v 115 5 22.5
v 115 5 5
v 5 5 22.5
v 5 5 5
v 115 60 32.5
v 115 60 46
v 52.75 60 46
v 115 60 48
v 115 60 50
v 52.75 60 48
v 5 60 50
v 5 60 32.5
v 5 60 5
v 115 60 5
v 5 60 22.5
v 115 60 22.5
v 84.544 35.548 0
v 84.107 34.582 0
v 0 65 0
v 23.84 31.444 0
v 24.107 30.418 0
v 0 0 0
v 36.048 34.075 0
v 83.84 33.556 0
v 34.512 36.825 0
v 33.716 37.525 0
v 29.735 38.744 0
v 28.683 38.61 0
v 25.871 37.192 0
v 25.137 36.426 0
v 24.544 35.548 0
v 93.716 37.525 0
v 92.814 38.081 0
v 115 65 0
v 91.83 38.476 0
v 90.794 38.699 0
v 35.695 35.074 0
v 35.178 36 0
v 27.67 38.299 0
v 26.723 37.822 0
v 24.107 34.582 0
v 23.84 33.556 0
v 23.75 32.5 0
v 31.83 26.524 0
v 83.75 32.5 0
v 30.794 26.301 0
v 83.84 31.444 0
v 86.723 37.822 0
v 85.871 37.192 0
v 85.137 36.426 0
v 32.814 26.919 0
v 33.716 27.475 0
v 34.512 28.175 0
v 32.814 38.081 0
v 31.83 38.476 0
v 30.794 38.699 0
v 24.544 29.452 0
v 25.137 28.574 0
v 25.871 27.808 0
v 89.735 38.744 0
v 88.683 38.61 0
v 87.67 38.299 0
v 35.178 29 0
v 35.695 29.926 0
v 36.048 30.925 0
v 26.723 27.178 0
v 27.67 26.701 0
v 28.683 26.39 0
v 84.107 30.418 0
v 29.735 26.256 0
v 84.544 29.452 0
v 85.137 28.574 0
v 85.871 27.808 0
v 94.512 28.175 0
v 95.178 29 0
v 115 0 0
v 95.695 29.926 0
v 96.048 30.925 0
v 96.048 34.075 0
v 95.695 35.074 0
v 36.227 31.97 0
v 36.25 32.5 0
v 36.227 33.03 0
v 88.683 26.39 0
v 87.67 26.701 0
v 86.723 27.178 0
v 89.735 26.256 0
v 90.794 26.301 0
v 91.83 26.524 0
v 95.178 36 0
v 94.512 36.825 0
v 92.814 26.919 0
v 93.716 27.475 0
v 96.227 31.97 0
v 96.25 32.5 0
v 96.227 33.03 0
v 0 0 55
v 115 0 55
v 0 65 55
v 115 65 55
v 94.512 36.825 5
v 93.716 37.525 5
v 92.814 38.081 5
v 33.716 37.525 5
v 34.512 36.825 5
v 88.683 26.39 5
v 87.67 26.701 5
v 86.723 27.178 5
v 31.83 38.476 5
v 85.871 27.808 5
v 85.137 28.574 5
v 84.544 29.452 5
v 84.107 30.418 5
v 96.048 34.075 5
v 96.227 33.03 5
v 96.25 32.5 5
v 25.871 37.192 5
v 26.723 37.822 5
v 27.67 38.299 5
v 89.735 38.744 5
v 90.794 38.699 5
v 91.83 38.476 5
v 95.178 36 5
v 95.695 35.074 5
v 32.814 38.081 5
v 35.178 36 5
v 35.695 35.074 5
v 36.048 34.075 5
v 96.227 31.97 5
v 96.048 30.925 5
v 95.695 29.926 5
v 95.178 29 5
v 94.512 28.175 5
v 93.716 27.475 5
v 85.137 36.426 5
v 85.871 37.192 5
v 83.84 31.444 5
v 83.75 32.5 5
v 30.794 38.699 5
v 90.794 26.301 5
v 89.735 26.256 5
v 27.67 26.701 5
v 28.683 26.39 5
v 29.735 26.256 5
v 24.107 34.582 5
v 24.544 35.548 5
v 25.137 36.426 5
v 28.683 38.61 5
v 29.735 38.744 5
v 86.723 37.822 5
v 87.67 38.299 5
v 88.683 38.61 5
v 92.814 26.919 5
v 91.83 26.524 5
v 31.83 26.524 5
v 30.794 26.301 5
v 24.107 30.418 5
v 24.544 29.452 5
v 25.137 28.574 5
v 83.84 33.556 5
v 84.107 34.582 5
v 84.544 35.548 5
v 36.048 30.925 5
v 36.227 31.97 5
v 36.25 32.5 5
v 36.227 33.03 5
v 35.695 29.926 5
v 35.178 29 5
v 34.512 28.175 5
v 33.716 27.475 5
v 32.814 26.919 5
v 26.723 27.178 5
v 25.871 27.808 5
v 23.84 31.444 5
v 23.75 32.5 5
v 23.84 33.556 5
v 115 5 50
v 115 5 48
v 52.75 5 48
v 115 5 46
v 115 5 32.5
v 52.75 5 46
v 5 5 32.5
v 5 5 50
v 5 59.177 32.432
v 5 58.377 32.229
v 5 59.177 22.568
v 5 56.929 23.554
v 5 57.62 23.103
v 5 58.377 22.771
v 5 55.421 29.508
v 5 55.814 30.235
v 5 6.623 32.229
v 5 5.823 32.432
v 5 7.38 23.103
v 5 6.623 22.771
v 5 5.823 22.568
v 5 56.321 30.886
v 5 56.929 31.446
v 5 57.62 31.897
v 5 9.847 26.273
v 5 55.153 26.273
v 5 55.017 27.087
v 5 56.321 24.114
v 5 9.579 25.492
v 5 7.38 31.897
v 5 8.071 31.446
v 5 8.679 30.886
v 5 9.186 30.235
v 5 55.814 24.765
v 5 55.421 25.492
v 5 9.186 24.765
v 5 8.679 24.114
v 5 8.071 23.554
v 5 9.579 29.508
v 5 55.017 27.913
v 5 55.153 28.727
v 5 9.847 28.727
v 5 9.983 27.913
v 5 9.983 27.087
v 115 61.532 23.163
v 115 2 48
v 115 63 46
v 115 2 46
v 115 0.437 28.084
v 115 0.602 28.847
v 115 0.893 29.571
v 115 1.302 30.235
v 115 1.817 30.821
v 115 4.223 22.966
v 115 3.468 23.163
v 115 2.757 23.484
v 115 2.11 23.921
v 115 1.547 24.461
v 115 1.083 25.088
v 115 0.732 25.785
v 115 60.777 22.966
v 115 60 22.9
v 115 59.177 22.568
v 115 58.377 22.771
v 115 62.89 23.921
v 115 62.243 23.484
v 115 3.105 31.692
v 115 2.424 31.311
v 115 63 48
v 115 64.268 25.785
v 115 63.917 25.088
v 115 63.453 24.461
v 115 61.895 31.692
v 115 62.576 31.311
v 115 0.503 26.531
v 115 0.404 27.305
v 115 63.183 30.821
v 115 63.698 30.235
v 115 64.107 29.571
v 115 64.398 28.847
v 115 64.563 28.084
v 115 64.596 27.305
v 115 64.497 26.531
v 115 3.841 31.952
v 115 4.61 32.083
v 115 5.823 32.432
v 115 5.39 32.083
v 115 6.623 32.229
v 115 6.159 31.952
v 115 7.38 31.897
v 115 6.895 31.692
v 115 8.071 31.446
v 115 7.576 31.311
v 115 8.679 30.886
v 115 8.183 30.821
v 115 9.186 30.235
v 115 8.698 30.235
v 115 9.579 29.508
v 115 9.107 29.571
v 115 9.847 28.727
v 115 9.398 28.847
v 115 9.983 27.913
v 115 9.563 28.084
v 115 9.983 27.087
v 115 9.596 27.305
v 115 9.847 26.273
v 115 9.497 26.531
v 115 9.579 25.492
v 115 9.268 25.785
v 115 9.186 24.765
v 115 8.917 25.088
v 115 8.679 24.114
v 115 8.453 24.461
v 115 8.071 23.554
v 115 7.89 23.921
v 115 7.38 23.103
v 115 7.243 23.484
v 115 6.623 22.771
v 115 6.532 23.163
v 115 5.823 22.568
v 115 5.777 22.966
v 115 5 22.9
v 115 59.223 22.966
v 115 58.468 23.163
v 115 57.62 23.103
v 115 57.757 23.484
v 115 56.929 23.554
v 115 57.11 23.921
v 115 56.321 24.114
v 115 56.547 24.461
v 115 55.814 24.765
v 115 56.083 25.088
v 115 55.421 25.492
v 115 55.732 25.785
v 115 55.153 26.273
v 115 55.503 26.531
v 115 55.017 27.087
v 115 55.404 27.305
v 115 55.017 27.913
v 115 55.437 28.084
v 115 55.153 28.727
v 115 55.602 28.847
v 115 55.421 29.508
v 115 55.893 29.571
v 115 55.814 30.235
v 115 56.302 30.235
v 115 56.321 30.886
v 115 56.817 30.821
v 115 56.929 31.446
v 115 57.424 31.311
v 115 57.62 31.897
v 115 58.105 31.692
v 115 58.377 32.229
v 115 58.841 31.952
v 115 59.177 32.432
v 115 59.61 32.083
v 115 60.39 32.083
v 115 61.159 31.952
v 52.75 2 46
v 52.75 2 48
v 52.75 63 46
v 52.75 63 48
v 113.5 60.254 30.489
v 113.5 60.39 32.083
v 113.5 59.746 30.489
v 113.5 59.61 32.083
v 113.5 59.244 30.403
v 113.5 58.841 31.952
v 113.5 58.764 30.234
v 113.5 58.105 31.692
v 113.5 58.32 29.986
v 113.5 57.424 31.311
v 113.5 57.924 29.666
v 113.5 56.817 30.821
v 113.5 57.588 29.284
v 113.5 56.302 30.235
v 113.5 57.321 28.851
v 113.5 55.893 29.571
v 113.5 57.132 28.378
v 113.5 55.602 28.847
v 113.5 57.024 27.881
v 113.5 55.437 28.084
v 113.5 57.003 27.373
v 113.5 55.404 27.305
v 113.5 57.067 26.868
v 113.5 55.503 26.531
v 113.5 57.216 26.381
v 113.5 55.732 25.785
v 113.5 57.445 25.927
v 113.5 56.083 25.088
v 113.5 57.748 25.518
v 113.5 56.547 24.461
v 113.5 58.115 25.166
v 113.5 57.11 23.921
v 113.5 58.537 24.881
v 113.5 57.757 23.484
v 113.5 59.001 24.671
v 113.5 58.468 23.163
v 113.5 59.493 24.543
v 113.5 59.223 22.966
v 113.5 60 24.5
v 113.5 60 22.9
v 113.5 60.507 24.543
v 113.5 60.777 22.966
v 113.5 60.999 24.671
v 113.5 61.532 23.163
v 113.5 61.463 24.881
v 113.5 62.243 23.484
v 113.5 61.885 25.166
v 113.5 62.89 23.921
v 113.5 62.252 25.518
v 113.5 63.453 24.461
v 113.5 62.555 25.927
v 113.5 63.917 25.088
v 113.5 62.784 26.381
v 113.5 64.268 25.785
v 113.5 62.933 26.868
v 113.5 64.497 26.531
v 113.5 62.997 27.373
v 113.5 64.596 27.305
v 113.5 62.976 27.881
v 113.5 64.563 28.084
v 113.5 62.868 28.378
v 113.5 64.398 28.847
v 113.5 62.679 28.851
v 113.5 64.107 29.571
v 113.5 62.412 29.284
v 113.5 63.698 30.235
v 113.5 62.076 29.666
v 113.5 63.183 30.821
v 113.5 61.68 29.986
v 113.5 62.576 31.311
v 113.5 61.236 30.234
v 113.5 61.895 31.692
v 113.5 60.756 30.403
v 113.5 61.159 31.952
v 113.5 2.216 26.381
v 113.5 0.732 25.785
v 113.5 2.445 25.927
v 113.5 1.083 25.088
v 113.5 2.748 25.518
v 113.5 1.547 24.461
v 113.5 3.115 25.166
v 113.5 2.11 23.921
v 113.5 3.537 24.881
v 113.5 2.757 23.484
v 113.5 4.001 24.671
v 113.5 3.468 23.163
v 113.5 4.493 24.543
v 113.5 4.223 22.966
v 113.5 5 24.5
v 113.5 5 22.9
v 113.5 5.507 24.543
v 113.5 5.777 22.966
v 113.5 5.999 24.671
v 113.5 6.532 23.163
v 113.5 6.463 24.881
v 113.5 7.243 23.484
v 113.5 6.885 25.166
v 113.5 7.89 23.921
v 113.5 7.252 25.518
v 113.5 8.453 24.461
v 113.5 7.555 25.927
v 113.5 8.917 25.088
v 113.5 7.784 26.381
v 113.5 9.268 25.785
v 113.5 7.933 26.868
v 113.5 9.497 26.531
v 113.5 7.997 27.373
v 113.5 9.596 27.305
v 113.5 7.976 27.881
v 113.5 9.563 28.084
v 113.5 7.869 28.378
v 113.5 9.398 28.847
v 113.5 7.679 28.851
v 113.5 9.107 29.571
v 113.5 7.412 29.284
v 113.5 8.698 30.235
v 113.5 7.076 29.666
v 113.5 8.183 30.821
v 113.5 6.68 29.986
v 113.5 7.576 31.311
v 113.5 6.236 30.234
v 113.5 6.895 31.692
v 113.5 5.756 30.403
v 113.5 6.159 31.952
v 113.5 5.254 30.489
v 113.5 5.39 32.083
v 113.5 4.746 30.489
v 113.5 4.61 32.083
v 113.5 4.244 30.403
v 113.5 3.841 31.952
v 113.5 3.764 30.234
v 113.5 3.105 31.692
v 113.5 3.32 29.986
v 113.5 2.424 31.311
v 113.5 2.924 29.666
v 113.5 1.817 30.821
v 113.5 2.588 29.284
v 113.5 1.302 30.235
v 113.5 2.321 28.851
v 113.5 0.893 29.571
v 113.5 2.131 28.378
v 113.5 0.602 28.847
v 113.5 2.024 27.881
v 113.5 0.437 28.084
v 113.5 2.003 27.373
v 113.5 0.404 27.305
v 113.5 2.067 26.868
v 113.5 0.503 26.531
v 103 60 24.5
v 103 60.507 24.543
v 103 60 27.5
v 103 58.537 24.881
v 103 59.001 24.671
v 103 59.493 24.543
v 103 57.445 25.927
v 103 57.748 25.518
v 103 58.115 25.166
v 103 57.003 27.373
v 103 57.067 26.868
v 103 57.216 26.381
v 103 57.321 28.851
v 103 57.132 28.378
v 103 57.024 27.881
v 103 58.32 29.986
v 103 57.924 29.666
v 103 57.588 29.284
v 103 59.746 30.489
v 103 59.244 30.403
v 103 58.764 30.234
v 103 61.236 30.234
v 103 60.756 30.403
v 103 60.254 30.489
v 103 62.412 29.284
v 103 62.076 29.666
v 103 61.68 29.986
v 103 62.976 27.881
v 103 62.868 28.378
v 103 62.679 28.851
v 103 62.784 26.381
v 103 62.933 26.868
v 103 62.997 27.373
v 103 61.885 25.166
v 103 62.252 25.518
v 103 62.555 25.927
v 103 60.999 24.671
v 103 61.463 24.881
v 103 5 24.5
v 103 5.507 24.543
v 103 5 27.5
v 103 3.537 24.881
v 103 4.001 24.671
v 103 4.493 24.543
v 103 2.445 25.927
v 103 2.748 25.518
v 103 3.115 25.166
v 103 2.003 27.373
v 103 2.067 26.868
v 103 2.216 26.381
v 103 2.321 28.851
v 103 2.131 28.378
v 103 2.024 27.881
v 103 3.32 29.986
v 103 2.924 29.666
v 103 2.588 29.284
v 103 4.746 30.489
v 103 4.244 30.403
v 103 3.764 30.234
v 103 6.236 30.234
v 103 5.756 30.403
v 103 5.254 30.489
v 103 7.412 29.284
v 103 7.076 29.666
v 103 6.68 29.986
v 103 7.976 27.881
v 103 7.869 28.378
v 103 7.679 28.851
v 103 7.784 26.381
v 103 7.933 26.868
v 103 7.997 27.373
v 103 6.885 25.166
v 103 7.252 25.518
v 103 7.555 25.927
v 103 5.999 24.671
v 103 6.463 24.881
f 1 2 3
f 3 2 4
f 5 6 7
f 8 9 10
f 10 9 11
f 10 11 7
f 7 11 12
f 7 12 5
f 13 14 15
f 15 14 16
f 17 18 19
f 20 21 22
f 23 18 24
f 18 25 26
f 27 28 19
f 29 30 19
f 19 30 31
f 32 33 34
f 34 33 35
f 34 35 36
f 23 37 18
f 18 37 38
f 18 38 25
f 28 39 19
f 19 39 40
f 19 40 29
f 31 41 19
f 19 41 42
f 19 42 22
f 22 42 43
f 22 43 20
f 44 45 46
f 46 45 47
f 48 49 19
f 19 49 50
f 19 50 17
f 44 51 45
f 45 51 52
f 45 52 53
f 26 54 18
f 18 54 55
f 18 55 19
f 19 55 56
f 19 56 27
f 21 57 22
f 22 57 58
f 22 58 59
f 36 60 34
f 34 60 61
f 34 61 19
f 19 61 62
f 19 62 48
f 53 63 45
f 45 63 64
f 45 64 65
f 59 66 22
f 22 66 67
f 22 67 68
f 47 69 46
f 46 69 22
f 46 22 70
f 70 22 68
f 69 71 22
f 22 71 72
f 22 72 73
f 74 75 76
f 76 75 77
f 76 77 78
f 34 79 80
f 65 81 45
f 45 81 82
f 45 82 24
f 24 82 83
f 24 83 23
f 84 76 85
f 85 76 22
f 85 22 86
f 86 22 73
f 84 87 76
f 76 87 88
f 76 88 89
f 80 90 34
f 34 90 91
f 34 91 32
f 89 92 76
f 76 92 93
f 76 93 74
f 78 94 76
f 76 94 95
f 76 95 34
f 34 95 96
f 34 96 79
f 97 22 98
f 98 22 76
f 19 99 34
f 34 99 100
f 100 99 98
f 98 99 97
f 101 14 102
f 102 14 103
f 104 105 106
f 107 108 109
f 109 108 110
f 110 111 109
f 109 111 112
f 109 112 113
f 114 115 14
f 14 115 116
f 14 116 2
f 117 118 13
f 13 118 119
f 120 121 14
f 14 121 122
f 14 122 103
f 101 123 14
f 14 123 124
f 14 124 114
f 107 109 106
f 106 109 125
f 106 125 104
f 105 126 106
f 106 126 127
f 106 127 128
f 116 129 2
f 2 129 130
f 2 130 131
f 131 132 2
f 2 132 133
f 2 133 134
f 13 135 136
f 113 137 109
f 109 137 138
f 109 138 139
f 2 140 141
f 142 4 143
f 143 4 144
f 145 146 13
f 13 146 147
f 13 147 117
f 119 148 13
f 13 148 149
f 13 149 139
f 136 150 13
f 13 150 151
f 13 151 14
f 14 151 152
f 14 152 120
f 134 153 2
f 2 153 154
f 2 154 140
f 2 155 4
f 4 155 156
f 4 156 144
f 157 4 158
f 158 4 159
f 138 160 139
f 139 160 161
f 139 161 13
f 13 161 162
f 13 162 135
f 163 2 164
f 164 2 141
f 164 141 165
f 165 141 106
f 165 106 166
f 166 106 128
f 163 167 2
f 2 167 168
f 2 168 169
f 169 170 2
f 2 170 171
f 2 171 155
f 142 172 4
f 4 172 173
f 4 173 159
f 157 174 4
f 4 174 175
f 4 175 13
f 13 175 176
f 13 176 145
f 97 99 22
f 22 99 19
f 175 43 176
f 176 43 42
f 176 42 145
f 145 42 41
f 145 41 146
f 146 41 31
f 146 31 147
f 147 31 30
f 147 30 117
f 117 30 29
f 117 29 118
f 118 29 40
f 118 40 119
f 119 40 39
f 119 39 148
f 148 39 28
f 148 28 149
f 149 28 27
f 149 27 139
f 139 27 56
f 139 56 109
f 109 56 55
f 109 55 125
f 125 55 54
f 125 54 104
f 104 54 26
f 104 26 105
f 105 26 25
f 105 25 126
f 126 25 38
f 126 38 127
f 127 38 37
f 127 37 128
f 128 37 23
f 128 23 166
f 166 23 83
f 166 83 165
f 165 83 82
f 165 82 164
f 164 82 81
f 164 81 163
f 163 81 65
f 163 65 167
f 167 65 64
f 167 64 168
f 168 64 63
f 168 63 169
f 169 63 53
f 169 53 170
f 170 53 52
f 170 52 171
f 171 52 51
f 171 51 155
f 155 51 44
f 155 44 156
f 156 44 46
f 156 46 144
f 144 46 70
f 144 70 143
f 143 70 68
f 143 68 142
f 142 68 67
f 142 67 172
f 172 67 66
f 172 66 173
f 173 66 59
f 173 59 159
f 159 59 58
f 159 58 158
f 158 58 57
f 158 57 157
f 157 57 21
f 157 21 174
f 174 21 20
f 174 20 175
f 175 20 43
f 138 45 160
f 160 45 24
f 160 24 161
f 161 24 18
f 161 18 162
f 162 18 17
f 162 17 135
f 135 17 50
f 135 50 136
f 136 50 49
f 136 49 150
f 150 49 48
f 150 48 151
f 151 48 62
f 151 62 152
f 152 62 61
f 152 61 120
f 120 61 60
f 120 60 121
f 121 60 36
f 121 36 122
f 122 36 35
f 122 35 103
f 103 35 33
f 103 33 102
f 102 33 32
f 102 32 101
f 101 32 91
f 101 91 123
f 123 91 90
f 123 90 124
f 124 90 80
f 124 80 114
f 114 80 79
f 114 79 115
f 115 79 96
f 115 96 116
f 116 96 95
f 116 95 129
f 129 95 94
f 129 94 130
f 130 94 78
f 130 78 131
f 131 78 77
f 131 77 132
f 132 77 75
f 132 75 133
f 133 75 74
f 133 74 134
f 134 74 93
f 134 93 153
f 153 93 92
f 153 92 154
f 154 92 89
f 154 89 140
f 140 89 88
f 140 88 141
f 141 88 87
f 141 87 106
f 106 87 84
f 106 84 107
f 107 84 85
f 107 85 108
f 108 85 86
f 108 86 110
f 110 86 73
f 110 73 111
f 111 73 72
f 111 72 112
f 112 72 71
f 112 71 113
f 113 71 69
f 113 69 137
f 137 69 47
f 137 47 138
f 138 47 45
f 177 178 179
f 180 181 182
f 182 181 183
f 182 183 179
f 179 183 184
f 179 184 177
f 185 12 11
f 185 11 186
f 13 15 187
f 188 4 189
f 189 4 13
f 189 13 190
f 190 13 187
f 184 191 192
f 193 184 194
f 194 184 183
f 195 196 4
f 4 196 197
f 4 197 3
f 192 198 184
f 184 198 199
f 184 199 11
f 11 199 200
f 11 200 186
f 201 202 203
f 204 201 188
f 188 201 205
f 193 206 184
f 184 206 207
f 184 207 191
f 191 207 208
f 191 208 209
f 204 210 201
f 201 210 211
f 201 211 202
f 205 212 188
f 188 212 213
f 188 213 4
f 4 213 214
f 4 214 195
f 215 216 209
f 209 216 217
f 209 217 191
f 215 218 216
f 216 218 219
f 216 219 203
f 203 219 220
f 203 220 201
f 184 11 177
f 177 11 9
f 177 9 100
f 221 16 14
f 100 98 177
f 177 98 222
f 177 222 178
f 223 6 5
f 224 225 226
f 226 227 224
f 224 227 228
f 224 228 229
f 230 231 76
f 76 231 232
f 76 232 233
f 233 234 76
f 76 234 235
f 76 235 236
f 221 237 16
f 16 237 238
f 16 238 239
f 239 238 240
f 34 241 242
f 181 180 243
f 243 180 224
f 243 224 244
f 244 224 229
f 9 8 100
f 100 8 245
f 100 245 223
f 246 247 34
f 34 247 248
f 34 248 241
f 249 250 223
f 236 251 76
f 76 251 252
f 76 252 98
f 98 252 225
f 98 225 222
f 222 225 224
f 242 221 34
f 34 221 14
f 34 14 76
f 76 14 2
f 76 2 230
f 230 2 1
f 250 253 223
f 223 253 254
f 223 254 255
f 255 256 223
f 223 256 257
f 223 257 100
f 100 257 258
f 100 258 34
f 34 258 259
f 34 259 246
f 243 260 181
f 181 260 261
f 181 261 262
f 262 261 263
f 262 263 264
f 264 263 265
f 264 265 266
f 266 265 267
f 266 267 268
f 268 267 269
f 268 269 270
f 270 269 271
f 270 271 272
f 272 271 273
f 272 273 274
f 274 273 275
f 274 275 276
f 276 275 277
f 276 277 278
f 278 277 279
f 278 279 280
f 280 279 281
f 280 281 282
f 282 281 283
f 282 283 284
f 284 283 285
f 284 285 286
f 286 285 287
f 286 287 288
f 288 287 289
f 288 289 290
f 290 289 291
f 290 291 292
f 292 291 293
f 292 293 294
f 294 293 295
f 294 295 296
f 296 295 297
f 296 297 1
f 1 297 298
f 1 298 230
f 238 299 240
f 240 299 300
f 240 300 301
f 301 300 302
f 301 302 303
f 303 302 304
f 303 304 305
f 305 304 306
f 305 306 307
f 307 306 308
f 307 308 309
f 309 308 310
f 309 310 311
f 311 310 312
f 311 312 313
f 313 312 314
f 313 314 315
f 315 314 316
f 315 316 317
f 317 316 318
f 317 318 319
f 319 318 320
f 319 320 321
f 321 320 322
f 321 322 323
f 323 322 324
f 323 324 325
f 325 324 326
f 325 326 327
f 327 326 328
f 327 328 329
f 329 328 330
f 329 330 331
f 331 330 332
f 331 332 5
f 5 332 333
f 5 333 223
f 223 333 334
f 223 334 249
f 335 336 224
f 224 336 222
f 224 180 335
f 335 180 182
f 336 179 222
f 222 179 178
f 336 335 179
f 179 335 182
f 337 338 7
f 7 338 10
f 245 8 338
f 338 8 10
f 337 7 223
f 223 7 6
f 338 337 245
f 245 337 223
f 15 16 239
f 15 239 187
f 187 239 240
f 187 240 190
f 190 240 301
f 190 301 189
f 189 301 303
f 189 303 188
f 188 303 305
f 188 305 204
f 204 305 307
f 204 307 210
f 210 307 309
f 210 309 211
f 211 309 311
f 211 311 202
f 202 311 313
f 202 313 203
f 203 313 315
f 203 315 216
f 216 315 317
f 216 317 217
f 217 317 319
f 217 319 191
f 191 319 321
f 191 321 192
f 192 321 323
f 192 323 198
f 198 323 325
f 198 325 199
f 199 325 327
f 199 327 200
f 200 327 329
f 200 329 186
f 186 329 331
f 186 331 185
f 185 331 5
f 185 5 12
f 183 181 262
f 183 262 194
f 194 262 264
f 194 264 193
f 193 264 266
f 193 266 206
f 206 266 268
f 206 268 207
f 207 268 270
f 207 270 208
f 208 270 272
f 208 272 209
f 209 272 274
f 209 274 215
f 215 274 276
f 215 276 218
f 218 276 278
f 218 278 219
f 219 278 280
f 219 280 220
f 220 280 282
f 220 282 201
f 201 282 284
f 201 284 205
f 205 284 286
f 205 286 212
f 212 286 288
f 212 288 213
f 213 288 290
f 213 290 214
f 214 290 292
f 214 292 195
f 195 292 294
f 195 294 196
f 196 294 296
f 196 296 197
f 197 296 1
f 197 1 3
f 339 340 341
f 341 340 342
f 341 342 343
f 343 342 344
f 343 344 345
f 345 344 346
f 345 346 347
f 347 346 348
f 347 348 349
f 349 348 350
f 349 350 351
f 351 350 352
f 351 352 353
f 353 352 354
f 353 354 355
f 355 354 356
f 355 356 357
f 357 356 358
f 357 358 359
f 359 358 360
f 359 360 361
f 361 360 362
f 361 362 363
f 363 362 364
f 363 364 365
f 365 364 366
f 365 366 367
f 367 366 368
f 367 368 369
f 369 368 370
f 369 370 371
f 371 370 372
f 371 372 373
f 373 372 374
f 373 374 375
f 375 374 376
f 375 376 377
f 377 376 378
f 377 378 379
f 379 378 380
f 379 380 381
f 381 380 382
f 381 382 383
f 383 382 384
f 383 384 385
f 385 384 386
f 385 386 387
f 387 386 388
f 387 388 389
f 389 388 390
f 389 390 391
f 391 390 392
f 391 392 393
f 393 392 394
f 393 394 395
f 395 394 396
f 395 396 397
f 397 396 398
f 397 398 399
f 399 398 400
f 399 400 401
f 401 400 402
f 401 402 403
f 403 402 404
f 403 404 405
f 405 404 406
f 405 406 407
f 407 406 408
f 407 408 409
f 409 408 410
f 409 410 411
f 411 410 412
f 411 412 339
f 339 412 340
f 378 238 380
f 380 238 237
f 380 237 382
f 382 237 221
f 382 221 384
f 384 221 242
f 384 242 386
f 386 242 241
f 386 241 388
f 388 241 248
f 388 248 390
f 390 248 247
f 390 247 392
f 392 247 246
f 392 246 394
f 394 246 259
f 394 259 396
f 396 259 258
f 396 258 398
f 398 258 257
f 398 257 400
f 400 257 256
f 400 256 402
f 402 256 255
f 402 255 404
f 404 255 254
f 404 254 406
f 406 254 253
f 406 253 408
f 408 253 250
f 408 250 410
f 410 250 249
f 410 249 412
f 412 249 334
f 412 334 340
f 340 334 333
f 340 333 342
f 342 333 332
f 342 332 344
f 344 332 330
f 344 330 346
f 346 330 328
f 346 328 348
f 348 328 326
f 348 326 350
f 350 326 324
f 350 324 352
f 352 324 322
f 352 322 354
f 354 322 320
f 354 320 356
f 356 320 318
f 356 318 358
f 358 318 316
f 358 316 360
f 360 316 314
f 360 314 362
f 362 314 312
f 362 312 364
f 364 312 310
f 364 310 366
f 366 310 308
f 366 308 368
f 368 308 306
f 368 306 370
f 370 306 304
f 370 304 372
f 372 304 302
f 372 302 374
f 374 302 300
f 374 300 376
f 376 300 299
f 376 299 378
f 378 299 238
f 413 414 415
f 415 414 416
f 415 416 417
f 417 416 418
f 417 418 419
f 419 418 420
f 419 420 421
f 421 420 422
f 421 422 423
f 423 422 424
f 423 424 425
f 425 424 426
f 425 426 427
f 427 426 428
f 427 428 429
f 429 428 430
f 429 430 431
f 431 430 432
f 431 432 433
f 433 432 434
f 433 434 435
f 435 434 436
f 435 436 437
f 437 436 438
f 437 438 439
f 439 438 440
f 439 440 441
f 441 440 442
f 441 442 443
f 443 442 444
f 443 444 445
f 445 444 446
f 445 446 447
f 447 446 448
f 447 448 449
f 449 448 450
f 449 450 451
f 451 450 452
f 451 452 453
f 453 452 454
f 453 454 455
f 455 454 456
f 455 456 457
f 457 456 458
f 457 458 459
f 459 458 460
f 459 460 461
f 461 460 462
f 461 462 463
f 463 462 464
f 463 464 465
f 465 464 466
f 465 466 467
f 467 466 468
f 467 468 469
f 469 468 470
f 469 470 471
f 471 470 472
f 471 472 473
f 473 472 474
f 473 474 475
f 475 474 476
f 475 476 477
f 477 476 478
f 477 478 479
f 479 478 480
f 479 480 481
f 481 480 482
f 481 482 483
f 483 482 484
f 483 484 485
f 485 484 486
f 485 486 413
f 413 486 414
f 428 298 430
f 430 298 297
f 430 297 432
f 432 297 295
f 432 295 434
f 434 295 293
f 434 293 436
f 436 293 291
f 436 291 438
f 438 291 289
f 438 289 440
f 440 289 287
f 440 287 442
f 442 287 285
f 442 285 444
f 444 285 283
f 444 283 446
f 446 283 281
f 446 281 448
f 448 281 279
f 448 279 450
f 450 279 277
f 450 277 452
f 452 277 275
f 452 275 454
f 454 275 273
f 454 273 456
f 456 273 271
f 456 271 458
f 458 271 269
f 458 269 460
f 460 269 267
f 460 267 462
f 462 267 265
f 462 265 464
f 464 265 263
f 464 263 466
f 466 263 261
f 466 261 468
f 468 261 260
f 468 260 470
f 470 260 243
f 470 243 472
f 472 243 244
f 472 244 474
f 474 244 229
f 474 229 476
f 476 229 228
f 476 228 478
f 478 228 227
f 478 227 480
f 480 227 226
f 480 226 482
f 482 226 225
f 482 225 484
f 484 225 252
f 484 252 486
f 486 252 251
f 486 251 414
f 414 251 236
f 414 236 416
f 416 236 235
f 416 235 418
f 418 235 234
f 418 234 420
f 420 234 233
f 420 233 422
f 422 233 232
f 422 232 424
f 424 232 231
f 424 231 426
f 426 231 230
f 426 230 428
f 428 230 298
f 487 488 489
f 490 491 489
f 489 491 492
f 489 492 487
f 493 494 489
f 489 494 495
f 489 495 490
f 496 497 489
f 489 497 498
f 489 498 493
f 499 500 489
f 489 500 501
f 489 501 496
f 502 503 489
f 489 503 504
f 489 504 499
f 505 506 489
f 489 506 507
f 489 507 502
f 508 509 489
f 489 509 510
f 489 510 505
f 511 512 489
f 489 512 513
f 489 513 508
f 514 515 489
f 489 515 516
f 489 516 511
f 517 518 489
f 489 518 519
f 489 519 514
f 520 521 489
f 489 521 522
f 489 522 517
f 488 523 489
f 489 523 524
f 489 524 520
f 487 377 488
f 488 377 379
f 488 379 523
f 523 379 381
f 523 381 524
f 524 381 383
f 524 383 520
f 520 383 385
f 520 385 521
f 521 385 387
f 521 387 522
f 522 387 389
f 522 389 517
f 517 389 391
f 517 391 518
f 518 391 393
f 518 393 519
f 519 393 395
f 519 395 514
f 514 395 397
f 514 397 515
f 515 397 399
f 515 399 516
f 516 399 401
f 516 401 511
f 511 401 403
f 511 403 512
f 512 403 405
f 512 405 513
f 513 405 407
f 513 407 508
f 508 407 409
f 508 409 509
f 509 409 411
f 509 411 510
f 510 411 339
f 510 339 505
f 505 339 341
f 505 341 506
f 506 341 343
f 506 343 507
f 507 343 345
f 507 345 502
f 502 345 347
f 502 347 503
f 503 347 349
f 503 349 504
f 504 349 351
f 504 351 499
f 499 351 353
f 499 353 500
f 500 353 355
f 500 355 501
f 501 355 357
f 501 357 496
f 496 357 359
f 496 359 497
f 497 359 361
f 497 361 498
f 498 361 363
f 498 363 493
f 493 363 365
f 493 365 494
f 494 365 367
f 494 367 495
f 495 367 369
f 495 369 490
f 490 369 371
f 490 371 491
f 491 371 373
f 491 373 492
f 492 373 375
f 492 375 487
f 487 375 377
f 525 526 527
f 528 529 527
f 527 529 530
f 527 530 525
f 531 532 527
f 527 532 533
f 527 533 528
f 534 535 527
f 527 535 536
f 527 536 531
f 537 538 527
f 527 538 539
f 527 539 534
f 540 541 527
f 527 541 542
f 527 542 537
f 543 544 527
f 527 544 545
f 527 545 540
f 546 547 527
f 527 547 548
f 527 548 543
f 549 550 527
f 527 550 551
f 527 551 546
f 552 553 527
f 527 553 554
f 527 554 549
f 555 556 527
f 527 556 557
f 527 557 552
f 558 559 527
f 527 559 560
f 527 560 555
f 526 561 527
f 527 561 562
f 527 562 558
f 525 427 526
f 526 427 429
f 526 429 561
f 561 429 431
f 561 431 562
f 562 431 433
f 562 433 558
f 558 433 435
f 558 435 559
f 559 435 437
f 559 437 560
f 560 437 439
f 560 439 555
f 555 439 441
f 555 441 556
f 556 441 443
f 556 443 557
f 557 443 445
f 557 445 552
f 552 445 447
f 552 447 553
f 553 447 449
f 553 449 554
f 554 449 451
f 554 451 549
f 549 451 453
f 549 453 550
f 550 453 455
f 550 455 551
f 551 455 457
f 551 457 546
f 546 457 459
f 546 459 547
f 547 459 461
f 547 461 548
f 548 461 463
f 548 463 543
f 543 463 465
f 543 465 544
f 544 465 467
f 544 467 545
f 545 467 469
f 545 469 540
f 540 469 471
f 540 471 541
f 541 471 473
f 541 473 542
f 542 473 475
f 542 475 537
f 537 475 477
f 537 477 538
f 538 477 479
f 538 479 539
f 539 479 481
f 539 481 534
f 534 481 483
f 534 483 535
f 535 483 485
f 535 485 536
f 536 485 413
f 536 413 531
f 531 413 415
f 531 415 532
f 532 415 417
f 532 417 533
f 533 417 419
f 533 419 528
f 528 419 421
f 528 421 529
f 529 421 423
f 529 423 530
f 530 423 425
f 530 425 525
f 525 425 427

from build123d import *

# Parameters (mm, degrees)
ESQUISSE1_W             = 120
ESQUISSE1_H             = 65
ESQUISSE1_R             = 6.25
BOSS_EXTRU_1_DEPTH      = 5
ESQUISSE2_W             = 120
ESQUISSE2_H             = 65
ESQUISSE2_W_2           = 110
ESQUISSE2_H_2           = 55
BOSS_EXTRU_3_DEPTH      = 45
ESQUISSE4_W             = 120
ESQUISSE4_H             = 65
BOSS_EXTRU_4_DEPTH      = 5
ESQUISSE5_W             = 55
ESQUISSE5_H             = 65
ENL_V_MAT_EXTRU_1_DEPTH = 5
ESQUISSE6_W             = 2
ESQUISSE6_H             = 61
ENL_V_MAT_EXTRU_2_DEPTH = 62.25
BOSS_EXTRU_6_DEPTH      = 110
ESQUISSE8_R             = 3
ENL_V_MAT_EXTRU_3_DEPTH = 12
ESQUISSE9_R             = 4.6
ENL_V_MAT_EXTRU_7_DEPTH = 1.5


with BuildPart() as part:
    # Esquisse1 → Boss.-Extru.1 (new body)
    with BuildSketch(Plane.XY):
        with Locations((60, 32.5)):
            Rectangle(ESQUISSE1_W, ESQUISSE1_H)
        with Locations((30, 32.5)):
            Circle(ESQUISSE1_R, mode=Mode.SUBTRACT)
        with Locations((90, 32.5)):
            Circle(ESQUISSE1_R, mode=Mode.SUBTRACT)
    extrude(amount=BOSS_EXTRU_1_DEPTH)

    # Esquisse2 → Boss.-Extru.3 (add)
    with BuildSketch(Plane.XY.offset(5)):
        with Locations((60, 32.5)):
            Rectangle(ESQUISSE2_W, ESQUISSE2_H)
        with Locations((60, 32.5)):
            Rectangle(ESQUISSE2_W_2, ESQUISSE2_H_2, mode=Mode.SUBTRACT)
    extrude(amount=BOSS_EXTRU_3_DEPTH)

    # Esquisse4 → Boss.-Extru.4 (add)
    with BuildSketch(Plane.XY.offset(50)):
        with Locations((60, 32.5)):
            Rectangle(ESQUISSE4_W, ESQUISSE4_H)
    extrude(amount=BOSS_EXTRU_4_DEPTH)

    # Esquisse5 → Enlèv. mat.-Extru.1 (cut)
    with BuildSketch(Plane(origin=(120, 0, 0), x_dir=(0, 0, -1), z_dir=(1, 0, 0))):
        with Locations((-27.5, 32.5)):
            Rectangle(ESQUISSE5_W, ESQUISSE5_H)
    extrude(amount=-ENL_V_MAT_EXTRU_1_DEPTH, mode=Mode.SUBTRACT)

    # Esquisse6 → Enlèv. mat.-Extru.2 (cut)
    with BuildSketch(Plane(origin=(115, 0, 0), x_dir=(0, 0, -1), z_dir=(1, 0, 0))):
        with Locations((-47, 32.5)):
            Rectangle(ESQUISSE6_W, ESQUISSE6_H)
    extrude(amount=-ENL_V_MAT_EXTRU_2_DEPTH, mode=Mode.SUBTRACT)

    # Esquisse7 → Boss.-Extru.6 (add)
    with BuildSketch(Plane(origin=(115, 0, 0), x_dir=(0, 0, -1), z_dir=(1, 0, 0))):
        with BuildLine():
            Line((-22.5, 60), (-32.5, 60))
            ThreePointArc((-32.5, 60), (-27.5, 55), (-22.5, 60))
        make_face()
        with BuildLine():
            Line((-32.5, 5), (-22.5, 5))
            ThreePointArc((-22.5, 5), (-27.5, 10), (-32.5, 5))
        make_face()
    extrude(amount=-BOSS_EXTRU_6_DEPTH)

    # Esquisse8 → Enlèv. mat.-Extru.3 (cut)
    with BuildSketch(Plane(origin=(115, 0, 0), x_dir=(0, 0, -1), z_dir=(1, 0, 0))):
        with Locations((-27.5, 60)):
            Circle(ESQUISSE8_R)
        with Locations((-27.5, 5)):
            Circle(ESQUISSE8_R)
    extrude(amount=-ENL_V_MAT_EXTRU_3_DEPTH, mode=Mode.SUBTRACT)

    # Esquisse9 → Enlèv. mat.-Extru.7 (cut)
    with BuildSketch(Plane(origin=(115, 0, 0), x_dir=(0, 0, -1), z_dir=(1, 0, 0))):
        with Locations((-27.5, 60)):
            Circle(ESQUISSE9_R)
        with Locations((-27.5, 5)):
            Circle(ESQUISSE9_R)
    extrude(amount=-ENL_V_MAT_EXTRU_7_DEPTH, mode=Mode.SUBTRACT)


solid = part.part
